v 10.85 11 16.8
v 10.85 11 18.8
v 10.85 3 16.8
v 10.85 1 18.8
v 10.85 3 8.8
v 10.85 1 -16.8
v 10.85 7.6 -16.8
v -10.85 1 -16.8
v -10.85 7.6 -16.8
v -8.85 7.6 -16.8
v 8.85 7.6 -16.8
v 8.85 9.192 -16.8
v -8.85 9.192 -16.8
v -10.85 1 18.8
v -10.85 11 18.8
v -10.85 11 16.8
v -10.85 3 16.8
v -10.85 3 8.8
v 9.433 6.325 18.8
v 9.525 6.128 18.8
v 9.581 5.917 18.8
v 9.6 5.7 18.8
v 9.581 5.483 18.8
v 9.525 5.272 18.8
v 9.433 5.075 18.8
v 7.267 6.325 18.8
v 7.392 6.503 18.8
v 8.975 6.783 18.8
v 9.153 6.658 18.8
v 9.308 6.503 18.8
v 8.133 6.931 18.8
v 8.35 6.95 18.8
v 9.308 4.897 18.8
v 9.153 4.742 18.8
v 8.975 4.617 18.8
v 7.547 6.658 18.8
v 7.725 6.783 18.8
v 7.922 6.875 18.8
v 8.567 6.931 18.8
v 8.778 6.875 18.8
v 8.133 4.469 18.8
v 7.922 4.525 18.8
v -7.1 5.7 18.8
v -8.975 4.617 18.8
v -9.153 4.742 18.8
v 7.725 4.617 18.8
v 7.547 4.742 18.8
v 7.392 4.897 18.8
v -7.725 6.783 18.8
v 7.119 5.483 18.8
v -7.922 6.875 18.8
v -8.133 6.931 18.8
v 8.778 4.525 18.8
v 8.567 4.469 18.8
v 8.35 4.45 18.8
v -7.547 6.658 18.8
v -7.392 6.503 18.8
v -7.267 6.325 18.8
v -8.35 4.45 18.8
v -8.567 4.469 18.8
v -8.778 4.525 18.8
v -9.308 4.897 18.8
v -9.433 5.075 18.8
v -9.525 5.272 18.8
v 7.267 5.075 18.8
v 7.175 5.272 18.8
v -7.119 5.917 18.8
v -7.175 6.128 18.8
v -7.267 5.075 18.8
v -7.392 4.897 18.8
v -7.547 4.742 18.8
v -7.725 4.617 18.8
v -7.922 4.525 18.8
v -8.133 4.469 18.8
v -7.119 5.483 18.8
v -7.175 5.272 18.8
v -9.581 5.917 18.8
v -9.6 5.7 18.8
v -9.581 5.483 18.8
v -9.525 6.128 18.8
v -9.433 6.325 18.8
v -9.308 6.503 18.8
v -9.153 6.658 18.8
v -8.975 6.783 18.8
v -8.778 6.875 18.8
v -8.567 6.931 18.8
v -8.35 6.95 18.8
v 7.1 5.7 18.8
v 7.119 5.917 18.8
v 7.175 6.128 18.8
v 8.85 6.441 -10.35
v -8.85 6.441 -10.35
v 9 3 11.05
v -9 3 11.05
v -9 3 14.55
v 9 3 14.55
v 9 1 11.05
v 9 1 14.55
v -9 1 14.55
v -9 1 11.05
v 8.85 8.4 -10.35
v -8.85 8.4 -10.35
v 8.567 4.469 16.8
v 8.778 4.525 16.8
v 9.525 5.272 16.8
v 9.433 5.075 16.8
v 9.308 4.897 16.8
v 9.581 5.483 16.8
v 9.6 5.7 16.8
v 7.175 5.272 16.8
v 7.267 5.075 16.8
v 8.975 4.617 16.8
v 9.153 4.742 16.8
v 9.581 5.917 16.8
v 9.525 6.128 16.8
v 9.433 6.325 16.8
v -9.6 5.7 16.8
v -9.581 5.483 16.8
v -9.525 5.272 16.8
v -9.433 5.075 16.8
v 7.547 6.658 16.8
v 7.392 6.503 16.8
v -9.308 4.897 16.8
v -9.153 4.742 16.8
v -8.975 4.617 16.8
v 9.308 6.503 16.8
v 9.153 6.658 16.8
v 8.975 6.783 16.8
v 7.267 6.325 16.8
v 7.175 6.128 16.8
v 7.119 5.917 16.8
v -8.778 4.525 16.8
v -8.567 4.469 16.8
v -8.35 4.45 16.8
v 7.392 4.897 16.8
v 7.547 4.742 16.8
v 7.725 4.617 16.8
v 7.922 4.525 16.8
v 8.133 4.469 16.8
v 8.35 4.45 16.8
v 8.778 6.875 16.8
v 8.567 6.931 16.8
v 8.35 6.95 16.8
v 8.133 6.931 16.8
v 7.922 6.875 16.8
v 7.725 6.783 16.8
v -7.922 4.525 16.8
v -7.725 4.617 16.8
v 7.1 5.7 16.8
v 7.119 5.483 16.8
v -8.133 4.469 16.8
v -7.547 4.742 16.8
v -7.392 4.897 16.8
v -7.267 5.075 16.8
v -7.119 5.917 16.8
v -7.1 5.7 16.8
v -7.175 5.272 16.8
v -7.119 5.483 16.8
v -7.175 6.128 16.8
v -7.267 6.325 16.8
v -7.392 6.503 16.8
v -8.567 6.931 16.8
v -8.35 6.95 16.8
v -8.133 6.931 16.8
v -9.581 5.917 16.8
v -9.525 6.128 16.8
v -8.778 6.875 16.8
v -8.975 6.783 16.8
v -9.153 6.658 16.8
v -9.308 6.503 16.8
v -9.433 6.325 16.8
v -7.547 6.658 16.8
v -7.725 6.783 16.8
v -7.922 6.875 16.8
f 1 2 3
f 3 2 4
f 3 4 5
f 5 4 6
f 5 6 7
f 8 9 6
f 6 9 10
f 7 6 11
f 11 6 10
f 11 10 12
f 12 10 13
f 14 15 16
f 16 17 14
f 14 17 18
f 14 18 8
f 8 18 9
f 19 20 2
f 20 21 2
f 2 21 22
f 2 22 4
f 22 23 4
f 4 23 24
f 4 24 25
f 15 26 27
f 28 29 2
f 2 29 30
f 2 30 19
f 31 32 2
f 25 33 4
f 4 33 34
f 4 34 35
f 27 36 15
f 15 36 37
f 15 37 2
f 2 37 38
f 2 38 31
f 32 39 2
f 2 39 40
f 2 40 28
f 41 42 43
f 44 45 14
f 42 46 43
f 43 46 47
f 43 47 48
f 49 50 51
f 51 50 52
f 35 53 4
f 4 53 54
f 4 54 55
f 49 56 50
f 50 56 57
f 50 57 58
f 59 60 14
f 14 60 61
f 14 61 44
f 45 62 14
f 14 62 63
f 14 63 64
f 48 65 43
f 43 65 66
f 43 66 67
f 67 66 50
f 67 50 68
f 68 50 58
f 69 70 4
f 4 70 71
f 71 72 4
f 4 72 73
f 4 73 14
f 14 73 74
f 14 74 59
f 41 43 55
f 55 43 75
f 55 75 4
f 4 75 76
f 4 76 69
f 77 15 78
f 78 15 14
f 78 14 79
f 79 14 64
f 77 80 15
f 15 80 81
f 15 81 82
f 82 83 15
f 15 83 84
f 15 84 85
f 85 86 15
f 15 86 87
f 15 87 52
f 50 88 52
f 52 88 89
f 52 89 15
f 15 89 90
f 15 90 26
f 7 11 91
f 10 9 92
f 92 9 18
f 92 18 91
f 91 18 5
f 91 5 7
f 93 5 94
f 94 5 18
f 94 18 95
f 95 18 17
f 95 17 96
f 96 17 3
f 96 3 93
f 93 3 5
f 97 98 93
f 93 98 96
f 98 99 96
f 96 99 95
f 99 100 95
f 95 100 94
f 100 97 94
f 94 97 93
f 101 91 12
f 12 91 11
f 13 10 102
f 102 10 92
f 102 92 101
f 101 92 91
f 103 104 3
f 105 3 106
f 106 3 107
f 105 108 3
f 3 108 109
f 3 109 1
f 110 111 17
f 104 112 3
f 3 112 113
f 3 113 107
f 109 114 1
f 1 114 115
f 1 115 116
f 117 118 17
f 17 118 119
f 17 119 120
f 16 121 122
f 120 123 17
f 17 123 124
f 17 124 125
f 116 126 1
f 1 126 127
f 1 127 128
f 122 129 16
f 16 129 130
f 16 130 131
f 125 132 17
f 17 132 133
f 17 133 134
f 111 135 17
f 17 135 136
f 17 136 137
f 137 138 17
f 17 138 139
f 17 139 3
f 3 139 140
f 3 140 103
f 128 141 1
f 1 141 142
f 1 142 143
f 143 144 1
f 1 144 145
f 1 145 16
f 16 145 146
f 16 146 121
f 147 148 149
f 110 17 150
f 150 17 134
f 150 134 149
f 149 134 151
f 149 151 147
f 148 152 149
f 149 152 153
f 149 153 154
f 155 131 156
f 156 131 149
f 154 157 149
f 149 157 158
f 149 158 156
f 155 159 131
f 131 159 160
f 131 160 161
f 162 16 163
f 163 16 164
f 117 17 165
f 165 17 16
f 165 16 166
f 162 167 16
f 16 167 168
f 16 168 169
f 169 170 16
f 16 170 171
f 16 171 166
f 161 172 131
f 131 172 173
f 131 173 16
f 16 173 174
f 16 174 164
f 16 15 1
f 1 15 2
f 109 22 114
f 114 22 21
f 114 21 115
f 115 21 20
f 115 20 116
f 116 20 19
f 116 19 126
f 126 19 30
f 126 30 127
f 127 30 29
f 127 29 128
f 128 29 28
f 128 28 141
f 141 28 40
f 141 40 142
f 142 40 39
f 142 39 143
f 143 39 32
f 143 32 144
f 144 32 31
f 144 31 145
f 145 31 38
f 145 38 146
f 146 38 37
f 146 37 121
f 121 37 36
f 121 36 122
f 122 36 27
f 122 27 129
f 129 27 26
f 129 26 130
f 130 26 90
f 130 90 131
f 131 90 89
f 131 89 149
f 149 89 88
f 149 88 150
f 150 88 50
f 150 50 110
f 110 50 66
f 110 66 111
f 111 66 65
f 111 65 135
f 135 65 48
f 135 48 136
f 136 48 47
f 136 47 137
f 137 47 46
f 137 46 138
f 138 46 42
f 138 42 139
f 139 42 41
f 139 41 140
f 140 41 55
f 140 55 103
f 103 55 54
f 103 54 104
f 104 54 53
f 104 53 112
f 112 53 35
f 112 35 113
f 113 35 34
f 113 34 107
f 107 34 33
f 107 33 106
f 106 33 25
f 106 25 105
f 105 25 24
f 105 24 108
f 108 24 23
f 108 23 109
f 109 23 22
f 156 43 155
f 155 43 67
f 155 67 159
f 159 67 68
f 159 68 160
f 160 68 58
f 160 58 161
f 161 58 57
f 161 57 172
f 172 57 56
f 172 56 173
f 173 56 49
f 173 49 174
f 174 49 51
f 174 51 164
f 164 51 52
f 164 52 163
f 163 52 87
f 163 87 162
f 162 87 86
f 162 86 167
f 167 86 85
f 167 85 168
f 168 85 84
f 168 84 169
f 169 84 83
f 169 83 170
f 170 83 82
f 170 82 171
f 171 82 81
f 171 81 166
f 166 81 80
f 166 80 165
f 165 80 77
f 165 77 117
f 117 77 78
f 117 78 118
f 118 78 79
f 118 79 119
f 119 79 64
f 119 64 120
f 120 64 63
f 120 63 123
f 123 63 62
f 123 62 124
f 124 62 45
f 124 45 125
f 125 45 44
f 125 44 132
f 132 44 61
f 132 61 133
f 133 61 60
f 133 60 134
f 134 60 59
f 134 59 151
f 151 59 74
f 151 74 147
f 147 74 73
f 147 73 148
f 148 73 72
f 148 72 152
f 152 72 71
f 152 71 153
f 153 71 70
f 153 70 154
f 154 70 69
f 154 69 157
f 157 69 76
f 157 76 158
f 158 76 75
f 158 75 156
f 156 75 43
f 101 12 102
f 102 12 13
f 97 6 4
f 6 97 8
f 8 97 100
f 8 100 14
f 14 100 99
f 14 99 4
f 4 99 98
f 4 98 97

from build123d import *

# Parameters (mm, degrees)
SKETCH1_W                 = 21.7
SKETCH1_H                 = 33.6
BOSS_EXTRUDE1_DEPTH       = 3
SKETCH2_W                 = 18
SKETCH2_H                 = 3.5
CUT_EXTRUDE1_DEPTH        = 2
BOSS_EXTRUDE2_DEPTH       = 21.7
SKETCH4_W                 = 17.7
SKETCH4_H                 = 6.45
BOSS_EXTRUDE3_DEPTH       = 9.2
SKETCH5_W                 = 21.7
SKETCH5_H                 = 2
BOSS_EXTRUDE4_DEPTH       = 11
F_1_0MM_DOWEL_HOLE1_D     = 2.5
F_1_0MM_DOWEL_HOLE1_DEPTH = 9.248924226
F_1_0MM_DOWEL_HOLE1_TIP   = 0.751075774
CHAMFER1_SIZE             = 6.515477142
CHAMFER1_SIZE_2           = 0.8
CUT_EXTRUDE2_DEPTH        = 25.334389246
CUT_EXTRUDE2_DEPTH_BACK   = 1
SKETCH8_W                 = 21.7
SKETCH8_H                 = 35.6


with BuildPart() as part:
    # Sketch1 → Boss-Extrude1 (new body)
    with BuildSketch(Plane(origin=(0, 0, 0), x_dir=(1, 0, 0), z_dir=(0, 1, 0))):
        Rectangle(SKETCH1_W, SKETCH1_H)
    extrude(amount=BOSS_EXTRUDE1_DEPTH)

    # Sketch2 → Cut-Extrude1 (cut)
    with BuildSketch(Plane(origin=(0, 3, 0), x_dir=(1, 0, 0), z_dir=(0, 1, 0))):
        with Locations((0, -12.8)):
            Rectangle(SKETCH2_W, SKETCH2_H)
    extrude(amount=-CUT_EXTRUDE1_DEPTH, mode=Mode.SUBTRACT)

    # Sketch3 → Boss-Extrude2 (add)
    with BuildSketch(Plane(origin=(10.85, 0, 0), x_dir=(0, 0, -1), z_dir=(1, 0, 0))):
        Polygon((-8.8, 3), (16.8, 7.6), (16.8, 3), align=None)
    extrude(amount=-BOSS_EXTRUDE2_DEPTH)

    # Sketch4 → Boss-Extrude3 (add)
    with BuildSketch(Plane(origin=(0, 0, 0.27322177), x_dir=(1, 0, 0), z_dir=(0, 1, 0))):
        with Locations((0, 13.84822177)):
            Rectangle(SKETCH4_W, SKETCH4_H)
    extrude(amount=BOSS_EXTRUDE3_DEPTH)

    # Sketch5 → Boss-Extrude4 (add)
    with BuildSketch(Plane(origin=(0, 0, 0), x_dir=(1, 0, 0), z_dir=(0, 1, 0))):
        with Locations((0, -17.8)):
            Rectangle(SKETCH5_W, SKETCH5_H)
    extrude(amount=BOSS_EXTRUDE4_DEPTH)

    # Ø1.0mm Dowel Hole1
    with Locations(Plane.XY.offset(18.8)):
        with Locations((-8.35, 5.7), (8.35, 5.7)):
            Hole(F_1_0MM_DOWEL_HOLE1_D / 2, depth=F_1_0MM_DOWEL_HOLE1_DEPTH)
            with Locations((0, 0, -(F_1_0MM_DOWEL_HOLE1_DEPTH + F_1_0MM_DOWEL_HOLE1_TIP / 2))):  # 118° drill point
                Cone(0, F_1_0MM_DOWEL_HOLE1_D / 2, F_1_0MM_DOWEL_HOLE1_TIP, mode=Mode.SUBTRACT)

    # Chamfer1
    # the kernel refuses this chamfer: 6.515477142, 0.8 mm, written as the material it takes off along each edge
    with BuildSketch(Plane(origin=(25.785570178, 9.2, -10.35), x_dir=(0, 0.00468857506979086, -0.9999890085715017), z_dir=(-1, 0, 0))) as chamfer1_piece_1:
        Polygon((CHAMFER1_SIZE * 0.99998900863, CHAMFER1_SIZE * 0.00468857507006), (-CHAMFER1_SIZE_2 * 0.00468857506979, CHAMFER1_SIZE_2 * 0.999989008572), (0, 0), align=None)
    extrude(amount=51.571140357, mode=Mode.SUBTRACT)

    # Sketch8 → Cut-Extrude2 (cut, two sides: drawn at the far end of the back side and taken through both)
    with BuildSketch(Plane.XZ.offset(-CUT_EXTRUDE2_DEPTH_BACK)):
        with Locations((0, 1)):
            Rectangle(SKETCH8_W, SKETCH8_H)
    extrude(amount=CUT_EXTRUDE2_DEPTH + CUT_EXTRUDE2_DEPTH_BACK, mode=Mode.SUBTRACT)


solid = part.part
